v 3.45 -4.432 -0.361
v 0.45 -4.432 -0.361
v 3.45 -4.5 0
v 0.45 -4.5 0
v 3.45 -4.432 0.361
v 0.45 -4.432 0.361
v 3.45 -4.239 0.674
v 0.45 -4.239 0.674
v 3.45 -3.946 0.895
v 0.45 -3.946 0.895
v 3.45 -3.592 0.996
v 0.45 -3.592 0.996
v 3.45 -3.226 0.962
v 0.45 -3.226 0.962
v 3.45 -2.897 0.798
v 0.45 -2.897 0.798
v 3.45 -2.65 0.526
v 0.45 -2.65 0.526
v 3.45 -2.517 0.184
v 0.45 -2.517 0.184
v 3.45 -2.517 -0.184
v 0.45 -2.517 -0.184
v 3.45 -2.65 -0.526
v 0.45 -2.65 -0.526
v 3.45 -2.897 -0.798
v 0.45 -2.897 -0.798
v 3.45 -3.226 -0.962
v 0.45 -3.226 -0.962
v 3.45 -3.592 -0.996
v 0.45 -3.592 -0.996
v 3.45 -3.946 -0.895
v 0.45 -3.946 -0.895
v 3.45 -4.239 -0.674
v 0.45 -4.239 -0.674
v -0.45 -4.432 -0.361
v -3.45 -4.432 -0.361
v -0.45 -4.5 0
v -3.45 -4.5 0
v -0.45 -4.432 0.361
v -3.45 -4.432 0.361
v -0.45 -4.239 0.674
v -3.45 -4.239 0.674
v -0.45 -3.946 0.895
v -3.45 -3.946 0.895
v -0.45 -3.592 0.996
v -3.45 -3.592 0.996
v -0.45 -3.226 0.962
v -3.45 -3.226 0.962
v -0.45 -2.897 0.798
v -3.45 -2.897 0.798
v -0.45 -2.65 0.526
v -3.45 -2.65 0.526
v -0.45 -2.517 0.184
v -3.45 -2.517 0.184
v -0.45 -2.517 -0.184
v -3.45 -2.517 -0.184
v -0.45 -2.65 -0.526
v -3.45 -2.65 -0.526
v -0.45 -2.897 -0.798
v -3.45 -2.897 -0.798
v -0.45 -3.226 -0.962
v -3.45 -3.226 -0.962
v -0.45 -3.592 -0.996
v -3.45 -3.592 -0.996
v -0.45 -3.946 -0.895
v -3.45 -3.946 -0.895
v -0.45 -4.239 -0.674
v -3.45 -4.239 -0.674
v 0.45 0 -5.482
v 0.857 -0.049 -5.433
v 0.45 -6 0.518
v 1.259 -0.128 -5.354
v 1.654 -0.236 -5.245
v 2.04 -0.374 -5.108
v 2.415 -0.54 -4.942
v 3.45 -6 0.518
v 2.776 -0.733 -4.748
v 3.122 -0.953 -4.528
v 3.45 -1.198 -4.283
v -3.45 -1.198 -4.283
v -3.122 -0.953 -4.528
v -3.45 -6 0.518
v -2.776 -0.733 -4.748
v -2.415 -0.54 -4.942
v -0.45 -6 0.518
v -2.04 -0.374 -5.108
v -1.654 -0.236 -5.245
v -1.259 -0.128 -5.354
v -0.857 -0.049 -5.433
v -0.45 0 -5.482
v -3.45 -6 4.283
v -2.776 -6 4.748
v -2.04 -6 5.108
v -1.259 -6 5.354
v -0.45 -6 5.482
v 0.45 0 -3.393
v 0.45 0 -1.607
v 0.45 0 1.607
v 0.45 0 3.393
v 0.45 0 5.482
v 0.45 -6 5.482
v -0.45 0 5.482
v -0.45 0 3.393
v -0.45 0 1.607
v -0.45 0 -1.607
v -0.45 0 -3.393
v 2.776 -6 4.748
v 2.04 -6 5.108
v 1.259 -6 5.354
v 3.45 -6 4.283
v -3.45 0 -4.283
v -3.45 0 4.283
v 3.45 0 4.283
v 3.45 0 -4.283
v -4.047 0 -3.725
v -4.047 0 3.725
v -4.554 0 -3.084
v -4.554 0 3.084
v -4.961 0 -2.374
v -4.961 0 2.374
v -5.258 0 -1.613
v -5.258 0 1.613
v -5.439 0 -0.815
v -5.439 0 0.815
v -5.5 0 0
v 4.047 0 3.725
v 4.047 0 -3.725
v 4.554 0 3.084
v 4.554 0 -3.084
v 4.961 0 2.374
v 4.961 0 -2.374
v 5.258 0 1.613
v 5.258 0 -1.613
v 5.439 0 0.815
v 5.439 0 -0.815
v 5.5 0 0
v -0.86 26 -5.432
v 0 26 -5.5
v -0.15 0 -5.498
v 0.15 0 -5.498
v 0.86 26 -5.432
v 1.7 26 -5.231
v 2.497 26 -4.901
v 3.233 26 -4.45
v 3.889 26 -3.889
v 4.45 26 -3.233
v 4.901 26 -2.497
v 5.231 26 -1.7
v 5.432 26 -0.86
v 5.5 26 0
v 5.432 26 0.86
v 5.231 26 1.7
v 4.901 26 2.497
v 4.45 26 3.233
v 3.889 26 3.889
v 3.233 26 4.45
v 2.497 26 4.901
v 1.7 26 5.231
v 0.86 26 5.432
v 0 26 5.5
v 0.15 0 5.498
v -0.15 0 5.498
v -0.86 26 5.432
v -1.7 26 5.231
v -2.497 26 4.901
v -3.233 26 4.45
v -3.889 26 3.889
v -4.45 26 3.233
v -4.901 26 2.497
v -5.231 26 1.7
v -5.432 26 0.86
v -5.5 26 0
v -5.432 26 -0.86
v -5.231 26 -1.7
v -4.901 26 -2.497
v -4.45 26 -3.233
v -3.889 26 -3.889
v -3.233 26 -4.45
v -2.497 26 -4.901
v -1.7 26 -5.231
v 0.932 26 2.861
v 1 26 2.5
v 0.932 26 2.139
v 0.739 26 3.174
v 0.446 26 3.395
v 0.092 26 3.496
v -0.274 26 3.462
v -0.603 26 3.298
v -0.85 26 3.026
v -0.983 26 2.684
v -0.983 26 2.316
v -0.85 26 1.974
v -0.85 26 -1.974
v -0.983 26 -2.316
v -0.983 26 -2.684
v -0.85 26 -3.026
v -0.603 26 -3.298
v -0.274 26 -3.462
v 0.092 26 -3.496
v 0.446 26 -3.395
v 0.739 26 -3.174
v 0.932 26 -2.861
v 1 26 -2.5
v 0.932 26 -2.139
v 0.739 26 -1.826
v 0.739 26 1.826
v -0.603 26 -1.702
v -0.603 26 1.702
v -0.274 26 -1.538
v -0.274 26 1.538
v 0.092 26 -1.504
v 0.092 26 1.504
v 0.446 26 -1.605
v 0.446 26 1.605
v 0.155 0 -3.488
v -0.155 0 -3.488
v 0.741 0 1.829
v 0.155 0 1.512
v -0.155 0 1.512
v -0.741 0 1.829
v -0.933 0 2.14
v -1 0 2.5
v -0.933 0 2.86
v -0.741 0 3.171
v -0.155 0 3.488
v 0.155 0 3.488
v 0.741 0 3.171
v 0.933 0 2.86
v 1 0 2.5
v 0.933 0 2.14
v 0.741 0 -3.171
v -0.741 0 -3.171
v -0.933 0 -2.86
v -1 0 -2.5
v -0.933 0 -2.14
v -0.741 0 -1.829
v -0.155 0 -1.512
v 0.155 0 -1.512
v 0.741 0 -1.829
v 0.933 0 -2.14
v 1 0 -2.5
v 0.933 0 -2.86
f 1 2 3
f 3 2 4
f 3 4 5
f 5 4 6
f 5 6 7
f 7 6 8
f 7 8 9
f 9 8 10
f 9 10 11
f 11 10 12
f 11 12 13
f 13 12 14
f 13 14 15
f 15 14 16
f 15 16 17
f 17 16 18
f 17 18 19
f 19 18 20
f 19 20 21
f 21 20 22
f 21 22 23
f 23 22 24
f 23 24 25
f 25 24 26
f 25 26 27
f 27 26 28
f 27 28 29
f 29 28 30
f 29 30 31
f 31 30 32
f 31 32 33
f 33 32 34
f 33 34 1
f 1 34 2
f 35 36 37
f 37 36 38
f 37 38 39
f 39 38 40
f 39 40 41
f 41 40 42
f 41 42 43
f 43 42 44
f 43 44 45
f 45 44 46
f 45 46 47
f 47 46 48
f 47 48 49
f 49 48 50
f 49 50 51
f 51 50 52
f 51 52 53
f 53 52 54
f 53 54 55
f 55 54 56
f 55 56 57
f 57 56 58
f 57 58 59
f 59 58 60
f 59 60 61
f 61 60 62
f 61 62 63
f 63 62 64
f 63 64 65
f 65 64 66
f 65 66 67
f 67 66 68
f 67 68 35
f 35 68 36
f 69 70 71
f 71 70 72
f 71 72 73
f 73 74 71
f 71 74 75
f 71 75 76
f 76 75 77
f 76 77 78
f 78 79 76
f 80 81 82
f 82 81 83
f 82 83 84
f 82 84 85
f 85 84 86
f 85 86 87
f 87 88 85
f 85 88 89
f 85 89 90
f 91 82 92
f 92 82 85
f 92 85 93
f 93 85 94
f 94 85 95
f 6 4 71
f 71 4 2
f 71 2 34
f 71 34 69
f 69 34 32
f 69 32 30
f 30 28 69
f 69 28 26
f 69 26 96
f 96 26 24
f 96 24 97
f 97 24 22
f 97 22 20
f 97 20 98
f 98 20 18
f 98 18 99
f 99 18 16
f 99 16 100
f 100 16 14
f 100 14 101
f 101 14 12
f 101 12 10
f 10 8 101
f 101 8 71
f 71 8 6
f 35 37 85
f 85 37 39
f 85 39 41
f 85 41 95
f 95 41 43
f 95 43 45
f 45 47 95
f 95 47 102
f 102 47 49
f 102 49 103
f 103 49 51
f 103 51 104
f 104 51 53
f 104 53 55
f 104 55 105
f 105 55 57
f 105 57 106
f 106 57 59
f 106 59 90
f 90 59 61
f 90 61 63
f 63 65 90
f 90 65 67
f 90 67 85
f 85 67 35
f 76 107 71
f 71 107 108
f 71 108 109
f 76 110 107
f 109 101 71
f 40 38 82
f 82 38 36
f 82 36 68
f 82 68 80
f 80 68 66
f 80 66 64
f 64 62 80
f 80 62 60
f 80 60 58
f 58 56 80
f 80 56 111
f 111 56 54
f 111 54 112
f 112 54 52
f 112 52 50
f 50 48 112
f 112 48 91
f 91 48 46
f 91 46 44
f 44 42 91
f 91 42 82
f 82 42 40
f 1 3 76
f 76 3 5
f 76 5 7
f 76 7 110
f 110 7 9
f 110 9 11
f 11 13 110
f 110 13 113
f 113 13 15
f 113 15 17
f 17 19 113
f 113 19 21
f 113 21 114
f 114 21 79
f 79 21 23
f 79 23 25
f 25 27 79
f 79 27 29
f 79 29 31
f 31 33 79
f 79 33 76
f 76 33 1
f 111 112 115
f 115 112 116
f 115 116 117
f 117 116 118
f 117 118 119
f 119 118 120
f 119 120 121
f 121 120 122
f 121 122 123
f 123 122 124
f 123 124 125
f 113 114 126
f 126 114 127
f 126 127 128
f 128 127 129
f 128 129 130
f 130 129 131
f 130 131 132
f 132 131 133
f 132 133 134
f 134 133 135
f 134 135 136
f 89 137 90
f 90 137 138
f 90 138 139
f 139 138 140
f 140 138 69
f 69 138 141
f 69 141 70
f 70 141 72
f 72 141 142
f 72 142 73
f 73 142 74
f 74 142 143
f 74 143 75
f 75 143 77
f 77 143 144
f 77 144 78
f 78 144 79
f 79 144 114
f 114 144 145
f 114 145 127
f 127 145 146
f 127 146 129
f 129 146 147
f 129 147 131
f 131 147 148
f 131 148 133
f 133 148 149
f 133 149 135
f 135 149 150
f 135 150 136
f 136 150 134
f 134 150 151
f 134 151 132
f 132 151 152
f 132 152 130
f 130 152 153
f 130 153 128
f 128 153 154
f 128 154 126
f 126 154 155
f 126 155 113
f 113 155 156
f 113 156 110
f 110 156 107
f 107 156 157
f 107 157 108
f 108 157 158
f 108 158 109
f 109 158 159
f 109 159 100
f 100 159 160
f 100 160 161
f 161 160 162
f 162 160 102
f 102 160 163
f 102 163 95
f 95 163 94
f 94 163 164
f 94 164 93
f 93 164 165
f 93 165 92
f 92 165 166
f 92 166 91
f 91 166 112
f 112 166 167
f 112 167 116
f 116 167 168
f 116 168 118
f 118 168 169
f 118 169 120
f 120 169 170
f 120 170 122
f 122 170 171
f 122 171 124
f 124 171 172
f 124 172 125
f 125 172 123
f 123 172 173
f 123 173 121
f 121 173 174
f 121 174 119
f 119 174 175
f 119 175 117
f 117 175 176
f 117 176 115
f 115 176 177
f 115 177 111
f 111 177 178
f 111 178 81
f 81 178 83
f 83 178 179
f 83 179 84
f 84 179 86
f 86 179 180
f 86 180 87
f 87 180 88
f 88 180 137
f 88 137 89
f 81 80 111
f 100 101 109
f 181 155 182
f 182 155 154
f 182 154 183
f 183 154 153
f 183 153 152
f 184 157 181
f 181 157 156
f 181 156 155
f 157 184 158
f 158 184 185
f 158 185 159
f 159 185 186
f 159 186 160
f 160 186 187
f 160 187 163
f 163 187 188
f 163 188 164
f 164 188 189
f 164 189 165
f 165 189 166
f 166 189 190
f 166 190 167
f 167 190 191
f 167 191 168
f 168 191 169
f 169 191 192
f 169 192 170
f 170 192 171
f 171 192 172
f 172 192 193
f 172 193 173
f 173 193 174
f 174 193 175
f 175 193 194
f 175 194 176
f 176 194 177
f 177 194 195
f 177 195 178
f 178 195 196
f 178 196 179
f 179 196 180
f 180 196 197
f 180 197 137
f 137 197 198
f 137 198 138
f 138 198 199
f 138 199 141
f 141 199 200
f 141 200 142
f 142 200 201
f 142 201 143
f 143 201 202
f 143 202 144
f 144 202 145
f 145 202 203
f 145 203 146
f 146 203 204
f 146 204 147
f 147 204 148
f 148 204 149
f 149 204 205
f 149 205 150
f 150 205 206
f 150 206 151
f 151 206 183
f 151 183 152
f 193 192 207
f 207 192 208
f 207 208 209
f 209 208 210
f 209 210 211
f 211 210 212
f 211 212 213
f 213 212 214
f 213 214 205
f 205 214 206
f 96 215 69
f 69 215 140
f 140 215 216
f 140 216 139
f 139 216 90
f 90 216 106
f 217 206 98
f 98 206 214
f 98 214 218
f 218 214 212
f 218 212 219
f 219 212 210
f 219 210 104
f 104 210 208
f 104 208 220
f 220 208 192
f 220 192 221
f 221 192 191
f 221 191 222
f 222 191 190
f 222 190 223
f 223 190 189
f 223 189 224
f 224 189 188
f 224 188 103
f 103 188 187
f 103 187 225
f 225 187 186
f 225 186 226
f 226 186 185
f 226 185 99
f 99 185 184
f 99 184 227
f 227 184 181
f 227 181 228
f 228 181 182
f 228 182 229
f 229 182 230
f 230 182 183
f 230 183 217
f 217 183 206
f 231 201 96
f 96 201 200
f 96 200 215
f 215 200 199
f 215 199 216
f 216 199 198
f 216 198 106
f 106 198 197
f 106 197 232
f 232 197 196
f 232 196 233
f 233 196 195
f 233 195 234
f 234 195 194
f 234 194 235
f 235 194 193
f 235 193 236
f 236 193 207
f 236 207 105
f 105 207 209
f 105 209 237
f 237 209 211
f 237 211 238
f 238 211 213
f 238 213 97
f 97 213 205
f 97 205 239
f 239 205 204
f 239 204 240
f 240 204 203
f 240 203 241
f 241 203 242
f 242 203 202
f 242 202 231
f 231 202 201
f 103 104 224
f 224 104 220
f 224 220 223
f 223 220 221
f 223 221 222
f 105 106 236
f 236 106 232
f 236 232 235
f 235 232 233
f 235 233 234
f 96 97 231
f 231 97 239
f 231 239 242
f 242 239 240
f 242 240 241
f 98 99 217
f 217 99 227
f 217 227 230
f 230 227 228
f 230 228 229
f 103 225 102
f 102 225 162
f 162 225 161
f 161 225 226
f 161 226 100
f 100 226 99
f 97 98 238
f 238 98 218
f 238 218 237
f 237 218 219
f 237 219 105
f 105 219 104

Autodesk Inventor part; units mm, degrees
ref_plane "YZ Plane" through (0, 0, 0) normal (1, 0, 0) x (0, 1, 0)
ref_plane "XZ Plane" through (0, 0, 0) normal (0, 1, 0) x (-1, 0, 0)
ref_plane "XY Plane" through (0, 0, 0) normal (0, 0, 1) x (1, 0, 0)
sketch "Sketch1" plane through (0, 0, 0) normal (0, 1, 0) x (-1, 0, 0)
  circle A0 centre (0, 0) radius 5.5
  dimension "d0" = 11
extrude "Extrusion1" add sketch "Sketch1" along normal blind 26
sketch "Sketch6" plane through (0, 0, 0) normal (0, -1, 0) x (1, 0, 0)
  circle A0 centre (0, 0) radius 5.5 projected
  line L0 (3.45, 0) -> (3.45, -4.2834)
  line L1 (0.45, 0) -> (0.45, -5.4816)
  line L2 (3.45, -5.4816) -> (3.45, -4.2834)
  line L3 (3.45, -5.4816) -> (0.45, -5.4816)
  line L4 (0.45, 0) -> (0.45, 5.4816)
  line L5 (3.45, 5.3243) -> (3.45, 0)
  line L6 (3.45, 5.3243) -> (0.45, 5.4816)
  line L7 (0, -5.5) -> (0, 5.5)
  line L8 (-3.45, 0) -> (-3.45, -4.2834)
  line L9 (-0.45, 0) -> (-0.45, -5.4816)
  line L10 (-3.45, -5.4816) -> (-3.45, -4.2834)
  line L11 (-3.45, -5.4816) -> (-0.45, -5.4816)
  line L12 (-0.45, 0) -> (-0.45, 5.4816)
  line L13 (-3.45, 5.3243) -> (-3.45, 0)
  line L14 (-3.45, 5.3243) -> (-0.45, 5.4816)
  point P0 (-3.45, 4.2834)
  point P1 (3.45, 4.2834)
  dimension "d20" = 3
  dimension "d21" = 3
  dimension "d22" = 0.45
  dimension "d23" = 2.05
  dimension "d24" = 2.05
extrude "Extrusion5" add sketch "Sketch6" along normal blind 6 contours A0 L5 L0 L1 L4 | L12 L9 A0 L8 L13
sketch "Sketch8" plane through (0, 0, 0) normal (1, 0, 0) x (0, 1, 0)
  line L0 (0, -5.5) -> (26, -5.5) projected
  line L1 (0, -5.4816) -> (-6, -5.4816) projected
  line L2 (0, -5.4816) -> (0, 5.4816) projected
  line L3 (0, -5.4816) -> (-6, 0.5184)
  line L4 (0, -5.4816) -> (8.4853, -5.4816) construction
  line L5 (-6, -5.4816) -> (-6, 5.4816) projected
  line L6 (-6, 0.5184) -> (-6, -5.4816)
  point P0 (0, 0)
  dimension "d27" = 135
extrude "Extrusion6" cut sketch "Sketch8" along normal through all both and the other way through all
sketch "Sketch10" plane through (0, 0, 0) normal (1, 0, 0) x (0, 1, 0)
  circle A0 centre (-3.5, 0) radius 1
  line L0 (0, -5.5) -> (26, -5.5) projected
  line L1 (-6, 0.5184) -> (-6, 5.4816) projected
  point P0 (0, 0)
  dimension "d30" = 2
  dimension "d31" = 5.5
  dimension "d32" = 2.5
extrude "Extrusion7" cut sketch "Sketch10" along normal through all both and the other way through all
sketch "Sketch11" plane through (0, 26, 0) normal (0, 1, 0) x (1, 0, 0)
  circle A0 centre (0, 2.5) radius 1
  circle A1 centre (0, -2.5) radius 1
  point P0 (0, 0)
  dimension "d35" = 2
  dimension "d36" = 2
  dimension "d37" = 2.5
  dimension "d38" = 2.5
extrude "Extrusion8" cut sketch "Sketch11" against normal blind 26
properties part number "Part4 finger(pinky)"
